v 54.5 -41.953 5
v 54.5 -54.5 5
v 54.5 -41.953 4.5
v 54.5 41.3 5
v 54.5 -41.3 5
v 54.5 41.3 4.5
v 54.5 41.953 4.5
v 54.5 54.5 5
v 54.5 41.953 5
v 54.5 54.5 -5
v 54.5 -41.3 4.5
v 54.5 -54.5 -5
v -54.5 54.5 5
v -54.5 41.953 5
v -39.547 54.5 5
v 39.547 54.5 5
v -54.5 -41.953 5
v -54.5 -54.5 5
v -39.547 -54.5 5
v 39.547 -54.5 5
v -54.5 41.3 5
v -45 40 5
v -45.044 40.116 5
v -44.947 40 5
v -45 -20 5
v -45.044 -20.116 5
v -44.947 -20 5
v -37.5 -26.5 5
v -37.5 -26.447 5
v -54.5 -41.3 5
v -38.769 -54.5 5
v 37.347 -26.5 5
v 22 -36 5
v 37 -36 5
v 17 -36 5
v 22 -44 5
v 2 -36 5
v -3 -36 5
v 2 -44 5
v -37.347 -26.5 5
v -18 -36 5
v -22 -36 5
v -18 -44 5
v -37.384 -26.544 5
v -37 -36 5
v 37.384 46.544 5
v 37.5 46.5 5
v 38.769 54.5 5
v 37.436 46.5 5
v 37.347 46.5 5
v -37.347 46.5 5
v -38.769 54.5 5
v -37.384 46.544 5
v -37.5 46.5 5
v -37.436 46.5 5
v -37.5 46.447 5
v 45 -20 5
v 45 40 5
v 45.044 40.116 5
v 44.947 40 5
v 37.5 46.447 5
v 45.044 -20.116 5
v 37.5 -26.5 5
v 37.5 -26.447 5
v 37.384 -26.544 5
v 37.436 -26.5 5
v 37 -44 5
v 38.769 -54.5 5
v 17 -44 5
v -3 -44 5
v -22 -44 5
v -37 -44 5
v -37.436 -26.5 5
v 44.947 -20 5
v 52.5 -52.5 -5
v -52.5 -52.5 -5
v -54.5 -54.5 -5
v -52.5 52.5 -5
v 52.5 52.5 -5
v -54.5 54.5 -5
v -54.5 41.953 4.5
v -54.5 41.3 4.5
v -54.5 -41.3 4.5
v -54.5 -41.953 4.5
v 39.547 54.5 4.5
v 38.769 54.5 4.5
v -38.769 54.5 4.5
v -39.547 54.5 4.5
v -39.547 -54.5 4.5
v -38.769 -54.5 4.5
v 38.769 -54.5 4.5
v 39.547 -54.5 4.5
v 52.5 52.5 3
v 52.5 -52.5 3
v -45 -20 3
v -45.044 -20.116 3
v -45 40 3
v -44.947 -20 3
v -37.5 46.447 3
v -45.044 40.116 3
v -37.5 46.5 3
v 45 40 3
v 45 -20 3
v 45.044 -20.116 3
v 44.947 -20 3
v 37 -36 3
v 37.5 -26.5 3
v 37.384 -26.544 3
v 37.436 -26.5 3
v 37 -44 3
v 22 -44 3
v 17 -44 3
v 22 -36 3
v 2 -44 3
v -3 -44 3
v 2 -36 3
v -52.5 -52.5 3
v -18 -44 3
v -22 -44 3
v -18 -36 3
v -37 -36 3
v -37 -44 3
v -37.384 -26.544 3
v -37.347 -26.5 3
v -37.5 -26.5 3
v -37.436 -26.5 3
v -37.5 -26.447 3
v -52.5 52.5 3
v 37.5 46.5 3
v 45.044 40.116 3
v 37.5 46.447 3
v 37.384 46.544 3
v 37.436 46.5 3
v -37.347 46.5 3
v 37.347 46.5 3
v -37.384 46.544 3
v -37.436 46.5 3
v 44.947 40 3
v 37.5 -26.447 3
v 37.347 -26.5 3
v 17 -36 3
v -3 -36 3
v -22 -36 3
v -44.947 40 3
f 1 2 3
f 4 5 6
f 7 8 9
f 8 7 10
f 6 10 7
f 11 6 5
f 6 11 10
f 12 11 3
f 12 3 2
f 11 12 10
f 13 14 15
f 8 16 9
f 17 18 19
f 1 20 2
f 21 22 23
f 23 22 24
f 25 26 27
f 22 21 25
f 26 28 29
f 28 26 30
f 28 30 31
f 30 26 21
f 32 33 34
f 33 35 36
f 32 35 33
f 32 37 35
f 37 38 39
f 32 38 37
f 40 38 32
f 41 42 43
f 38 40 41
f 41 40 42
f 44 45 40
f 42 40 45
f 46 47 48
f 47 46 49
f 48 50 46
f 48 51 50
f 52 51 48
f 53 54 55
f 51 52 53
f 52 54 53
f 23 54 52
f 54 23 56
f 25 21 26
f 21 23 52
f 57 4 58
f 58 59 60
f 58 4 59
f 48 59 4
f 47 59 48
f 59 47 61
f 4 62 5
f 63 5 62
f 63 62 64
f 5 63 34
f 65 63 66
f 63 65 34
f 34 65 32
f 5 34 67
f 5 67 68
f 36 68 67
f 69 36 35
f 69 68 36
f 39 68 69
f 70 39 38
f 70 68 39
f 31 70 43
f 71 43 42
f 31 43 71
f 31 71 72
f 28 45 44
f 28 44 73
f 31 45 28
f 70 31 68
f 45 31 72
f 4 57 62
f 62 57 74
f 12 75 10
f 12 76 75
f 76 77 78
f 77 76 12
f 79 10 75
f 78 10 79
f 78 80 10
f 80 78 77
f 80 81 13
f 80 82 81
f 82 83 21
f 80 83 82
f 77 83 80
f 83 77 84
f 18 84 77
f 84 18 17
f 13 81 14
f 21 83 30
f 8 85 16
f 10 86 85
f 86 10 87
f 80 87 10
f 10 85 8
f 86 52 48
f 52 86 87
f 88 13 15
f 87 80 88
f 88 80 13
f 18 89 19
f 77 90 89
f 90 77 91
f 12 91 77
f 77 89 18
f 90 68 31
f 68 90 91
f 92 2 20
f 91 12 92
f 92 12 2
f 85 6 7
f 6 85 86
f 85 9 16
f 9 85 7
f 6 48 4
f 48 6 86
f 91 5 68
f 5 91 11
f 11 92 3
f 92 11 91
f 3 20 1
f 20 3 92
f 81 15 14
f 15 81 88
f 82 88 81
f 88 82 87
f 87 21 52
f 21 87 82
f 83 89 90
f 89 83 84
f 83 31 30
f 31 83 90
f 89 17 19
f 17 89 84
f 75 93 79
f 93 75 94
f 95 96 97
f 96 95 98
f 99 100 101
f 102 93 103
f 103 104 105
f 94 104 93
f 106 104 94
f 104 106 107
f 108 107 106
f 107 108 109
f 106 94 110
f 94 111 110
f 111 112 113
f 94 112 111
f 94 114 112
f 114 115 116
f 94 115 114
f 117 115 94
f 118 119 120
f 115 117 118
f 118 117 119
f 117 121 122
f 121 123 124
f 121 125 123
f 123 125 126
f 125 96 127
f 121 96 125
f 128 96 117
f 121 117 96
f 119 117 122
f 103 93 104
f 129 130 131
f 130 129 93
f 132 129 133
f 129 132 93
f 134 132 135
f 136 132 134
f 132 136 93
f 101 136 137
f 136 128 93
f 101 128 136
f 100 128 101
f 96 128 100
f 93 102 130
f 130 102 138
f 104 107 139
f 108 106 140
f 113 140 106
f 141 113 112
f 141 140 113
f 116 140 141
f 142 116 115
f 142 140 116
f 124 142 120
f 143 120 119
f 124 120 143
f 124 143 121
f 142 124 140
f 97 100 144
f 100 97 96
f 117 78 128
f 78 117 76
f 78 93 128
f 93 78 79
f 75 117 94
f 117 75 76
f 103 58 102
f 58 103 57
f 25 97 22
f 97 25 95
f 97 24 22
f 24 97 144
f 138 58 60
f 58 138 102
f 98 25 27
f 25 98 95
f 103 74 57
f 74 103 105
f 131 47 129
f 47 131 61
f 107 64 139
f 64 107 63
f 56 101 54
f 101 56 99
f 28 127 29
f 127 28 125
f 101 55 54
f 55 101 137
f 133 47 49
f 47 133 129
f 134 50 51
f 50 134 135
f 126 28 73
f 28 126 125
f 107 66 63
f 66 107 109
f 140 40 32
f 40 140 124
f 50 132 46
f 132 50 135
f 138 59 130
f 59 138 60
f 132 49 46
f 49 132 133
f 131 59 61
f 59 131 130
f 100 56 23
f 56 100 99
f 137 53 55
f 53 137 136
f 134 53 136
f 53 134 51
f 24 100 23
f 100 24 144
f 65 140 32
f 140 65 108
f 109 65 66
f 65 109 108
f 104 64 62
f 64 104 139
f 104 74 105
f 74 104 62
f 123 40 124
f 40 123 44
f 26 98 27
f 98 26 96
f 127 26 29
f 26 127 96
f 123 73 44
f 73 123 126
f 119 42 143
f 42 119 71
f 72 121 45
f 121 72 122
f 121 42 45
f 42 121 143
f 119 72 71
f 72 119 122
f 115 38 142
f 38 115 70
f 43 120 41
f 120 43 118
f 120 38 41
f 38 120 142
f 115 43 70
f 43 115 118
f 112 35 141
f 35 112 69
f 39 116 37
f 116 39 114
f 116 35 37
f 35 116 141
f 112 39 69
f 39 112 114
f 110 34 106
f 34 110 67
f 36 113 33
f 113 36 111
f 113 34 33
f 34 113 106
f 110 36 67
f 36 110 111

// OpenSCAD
/*
 * Cache-instrument SIMRAD
 */
 echo("Ça vient !");

 w = 109;
 d = 109;
 h = 10;
 
 difference() {
   // Main block
   translate([0, 0, 0]) {
     rotate([0, 0, 0]) {
       cube([w, d, h], center=true);
     }
   }
   
   // Lines in the corners
   translate([47.5, 47.5, 5]) {
     rotate([0, 0, -40]) {
       cube([50, 0.5, 1], center=true);
     }
   }
   translate([47.5, -47.5, 5]) {
     rotate([0, 0, 40]) {
       cube([50, 0.5, 1], center=true);
     }
   }
   translate([-47.5, 47.5, 5]) {
     rotate([0, 0, 40]) {
       cube([50, 0.5, 1], center=true);
     }
   }
   translate([-47.5, -47.5, 5]) {
     rotate([0, 0, -40]) {
       cube([50, 0.5, 1], center=true);
     }
   }
   
   // Bottom vaccum
   translate([0, 0, -2]) {
     rotate([0, 0, 0]) {
       cube([w - 4, d - 4, h], center=true);
     }
   }
   
   // Top 
   // Main screen
   translate([0, 10, 3]) {
     rotate([0, 0, 0]) {
       cube([90, 60, h], center=true);
     }
   }
   translate([0, 10, 3]) {
     rotate([0, 0, 0]) {
       cube([75, 73, h], center=true);
     }
   }
   // Main Screen Corners
   // Top right
   translate([38, 39.5, 3]) {
     rotate([0, 0, 50]) {
       cube([10, 10, h], center=true);
     }
   }
   // Top left
   translate([-38, 39.5, 3]) {
     rotate([0, 0, -50]) {
       cube([10, 10, h], center=true);
     }
   }
   
   // Bittom right
   translate([38, -19.5, 3]) {
     rotate([0, 0, 40]) {
       cube([10, 10, h], center=true);
     }
   }
   // Bottom left
   translate([-38, -19.5, 3]) {
     rotate([0, 0, -40]) {
       cube([10, 10, h], center=true);
     }
   }
   
   // Bottom buttons
   // Left to right. 1
   translate([-37 + (15 / 2), -40, 3]) {
     rotate([0, 0, 0]) {
       cube([15, 8, h], center=true);
     }
   }
   // Left to right. 2
   translate([-18 + (15 / 2), -40, 3]) {
     rotate([0, 0, 0]) {
       cube([15, 8, h], center=true);
     }
   }
   // Left to right. 3
   translate([2 + (15 / 2), -40, 3]) {
     rotate([0, 0, 0]) {
       cube([15, 8, h], center=true);
     }
   }
   // Left to right. 4
   translate([22 + (15 / 2), -40, 3]) {
     rotate([0, 0, 0]) {
       cube([15, 8, h], center=true);
     }
   }
   
 }
